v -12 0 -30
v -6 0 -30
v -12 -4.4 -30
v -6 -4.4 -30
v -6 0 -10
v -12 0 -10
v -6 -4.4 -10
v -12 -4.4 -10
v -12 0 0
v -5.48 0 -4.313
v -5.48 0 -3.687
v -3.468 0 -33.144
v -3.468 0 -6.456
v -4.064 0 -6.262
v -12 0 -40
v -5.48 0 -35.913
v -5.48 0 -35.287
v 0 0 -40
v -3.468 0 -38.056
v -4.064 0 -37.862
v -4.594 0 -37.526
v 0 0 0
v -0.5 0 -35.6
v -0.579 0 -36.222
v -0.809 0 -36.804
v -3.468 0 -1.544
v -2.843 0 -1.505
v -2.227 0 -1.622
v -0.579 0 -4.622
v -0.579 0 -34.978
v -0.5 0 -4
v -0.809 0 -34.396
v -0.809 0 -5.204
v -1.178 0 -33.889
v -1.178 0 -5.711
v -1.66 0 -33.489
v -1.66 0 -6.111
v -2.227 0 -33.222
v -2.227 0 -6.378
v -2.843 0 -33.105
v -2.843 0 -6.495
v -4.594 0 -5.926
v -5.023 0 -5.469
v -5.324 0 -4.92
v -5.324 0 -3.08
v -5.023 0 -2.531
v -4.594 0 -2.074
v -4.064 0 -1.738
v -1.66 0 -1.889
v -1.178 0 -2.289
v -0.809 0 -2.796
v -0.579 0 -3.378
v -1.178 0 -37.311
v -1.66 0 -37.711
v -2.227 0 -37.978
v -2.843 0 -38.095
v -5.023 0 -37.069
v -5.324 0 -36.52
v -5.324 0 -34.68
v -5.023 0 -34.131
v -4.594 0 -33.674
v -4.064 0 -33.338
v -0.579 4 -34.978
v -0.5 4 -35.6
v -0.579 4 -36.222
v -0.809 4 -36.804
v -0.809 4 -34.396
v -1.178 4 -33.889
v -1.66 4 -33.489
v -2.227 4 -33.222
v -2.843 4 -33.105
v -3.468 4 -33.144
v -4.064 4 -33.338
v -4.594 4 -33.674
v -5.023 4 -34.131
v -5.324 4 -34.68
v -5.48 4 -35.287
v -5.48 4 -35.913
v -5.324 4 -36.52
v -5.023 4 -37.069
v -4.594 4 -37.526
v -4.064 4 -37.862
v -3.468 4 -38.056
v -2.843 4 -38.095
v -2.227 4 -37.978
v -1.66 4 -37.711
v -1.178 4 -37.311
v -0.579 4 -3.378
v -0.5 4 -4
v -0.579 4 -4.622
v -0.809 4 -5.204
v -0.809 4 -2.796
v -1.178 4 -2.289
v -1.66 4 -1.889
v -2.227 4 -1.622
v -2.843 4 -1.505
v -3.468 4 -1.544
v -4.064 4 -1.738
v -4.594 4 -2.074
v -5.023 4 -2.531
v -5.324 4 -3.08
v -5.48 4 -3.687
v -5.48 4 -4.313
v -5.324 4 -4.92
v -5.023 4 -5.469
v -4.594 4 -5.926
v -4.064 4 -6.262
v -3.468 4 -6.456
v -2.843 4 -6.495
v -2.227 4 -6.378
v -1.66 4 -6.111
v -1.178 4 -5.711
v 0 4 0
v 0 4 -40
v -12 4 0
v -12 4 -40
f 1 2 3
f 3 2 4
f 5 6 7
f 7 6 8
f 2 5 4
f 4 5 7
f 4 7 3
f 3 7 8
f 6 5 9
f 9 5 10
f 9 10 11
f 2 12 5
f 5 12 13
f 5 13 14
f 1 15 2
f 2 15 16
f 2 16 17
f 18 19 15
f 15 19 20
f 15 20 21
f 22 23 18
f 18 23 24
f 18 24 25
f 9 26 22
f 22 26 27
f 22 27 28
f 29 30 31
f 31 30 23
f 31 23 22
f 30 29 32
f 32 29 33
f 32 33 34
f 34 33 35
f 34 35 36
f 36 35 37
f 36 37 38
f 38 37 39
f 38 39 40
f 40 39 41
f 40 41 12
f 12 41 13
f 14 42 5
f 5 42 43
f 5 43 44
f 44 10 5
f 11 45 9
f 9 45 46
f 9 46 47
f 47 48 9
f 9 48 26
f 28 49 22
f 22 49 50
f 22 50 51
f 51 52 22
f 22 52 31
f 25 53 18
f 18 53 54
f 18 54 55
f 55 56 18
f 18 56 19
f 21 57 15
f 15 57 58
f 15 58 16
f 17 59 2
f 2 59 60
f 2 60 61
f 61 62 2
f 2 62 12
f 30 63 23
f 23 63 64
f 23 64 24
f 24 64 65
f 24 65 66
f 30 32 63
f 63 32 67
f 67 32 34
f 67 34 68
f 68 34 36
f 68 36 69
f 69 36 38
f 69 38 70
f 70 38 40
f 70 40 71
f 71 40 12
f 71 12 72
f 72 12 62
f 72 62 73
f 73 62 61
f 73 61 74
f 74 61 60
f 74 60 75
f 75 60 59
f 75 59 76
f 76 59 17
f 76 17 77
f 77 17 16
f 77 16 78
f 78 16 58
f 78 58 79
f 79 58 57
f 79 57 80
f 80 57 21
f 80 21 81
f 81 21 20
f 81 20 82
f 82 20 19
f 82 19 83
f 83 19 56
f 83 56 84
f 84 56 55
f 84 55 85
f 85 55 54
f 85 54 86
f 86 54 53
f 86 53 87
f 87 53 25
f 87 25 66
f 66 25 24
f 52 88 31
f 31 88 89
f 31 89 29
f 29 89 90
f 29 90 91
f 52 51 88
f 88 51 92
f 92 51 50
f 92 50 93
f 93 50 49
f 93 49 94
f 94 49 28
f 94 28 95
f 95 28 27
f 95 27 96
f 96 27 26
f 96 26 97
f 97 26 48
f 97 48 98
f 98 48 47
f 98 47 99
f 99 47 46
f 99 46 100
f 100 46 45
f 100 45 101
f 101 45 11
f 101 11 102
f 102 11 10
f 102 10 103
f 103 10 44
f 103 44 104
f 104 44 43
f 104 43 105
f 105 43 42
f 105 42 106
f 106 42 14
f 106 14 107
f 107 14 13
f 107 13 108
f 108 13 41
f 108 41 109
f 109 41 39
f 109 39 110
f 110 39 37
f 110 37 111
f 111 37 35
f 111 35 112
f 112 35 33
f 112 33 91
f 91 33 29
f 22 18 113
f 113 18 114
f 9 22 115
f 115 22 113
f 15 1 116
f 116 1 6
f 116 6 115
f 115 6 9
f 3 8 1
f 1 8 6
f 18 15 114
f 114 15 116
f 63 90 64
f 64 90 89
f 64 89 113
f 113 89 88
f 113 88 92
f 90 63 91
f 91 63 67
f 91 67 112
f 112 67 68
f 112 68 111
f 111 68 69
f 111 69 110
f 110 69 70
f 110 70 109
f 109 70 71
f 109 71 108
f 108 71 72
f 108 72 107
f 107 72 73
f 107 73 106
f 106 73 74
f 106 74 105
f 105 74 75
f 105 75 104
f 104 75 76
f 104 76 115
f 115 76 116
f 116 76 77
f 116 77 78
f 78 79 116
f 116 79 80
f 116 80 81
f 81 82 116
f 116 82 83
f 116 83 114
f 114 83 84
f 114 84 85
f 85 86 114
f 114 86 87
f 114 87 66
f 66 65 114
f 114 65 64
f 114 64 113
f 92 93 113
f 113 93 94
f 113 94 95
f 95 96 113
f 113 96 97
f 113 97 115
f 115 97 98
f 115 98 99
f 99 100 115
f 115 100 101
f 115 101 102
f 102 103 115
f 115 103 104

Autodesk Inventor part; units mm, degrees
ref_plane "YZ Plane" through (0, 0, 0) normal (1, 0, 0) x (0, 1, 0)
ref_plane "XZ Plane" through (0, 0, 0) normal (0, 1, 0) x (-1, 0, 0)
ref_plane "XY Plane" through (0, 0, 0) normal (0, 0, 1) x (1, 0, 0)
sketch "Sketch1" plane through (0, 0, 0) normal (0, 1, 0) x (-1, 0, 0)
  line L0 (0, 0) -> (12, 0)
  line L1 (12, 0) -> (12, -40)
  line L2 (12, -40) -> (0, -40)
  line L3 (0, -40) -> (0, 0)
  dimension "d0" = 40
  dimension "d1" = 12
extrude "Extrusion1" add sketch "Sketch1" along normal blind 4
sketch "Sketch2" plane through (0, 4, 0) normal (0, 1, 0) x (1, 0, 0)
  circle A0 centre (-3, 4) radius 2.5
  circle A1 centre (-3, 35.6) radius 2.5
  line L0 (-12, 0) -> (0, 0) projected
  line L1 (0, 0) -> (0, 40) projected
  dimension "d4" = 5
  dimension "d5" = 5
  dimension "d6" = 4
  dimension "d7" = 3
  dimension "d8" = 31.6
  dimension "d9" = 3
extrude "Extrusion2" cut sketch "Sketch2" against normal blind 4
sketch "Sketch3" plane through (0, 0, 0) normal (0, -1, 0) x (1, 0, 0)
  line L0 (-12, -30) -> (-6, -30)
  line L1 (-6, -30) -> (-6, -10)
  line L2 (-6, -10) -> (-12, -10)
  line L3 (-12, -10) -> (-12, -30)
  line L4 (0, -40) -> (-12, -40) projected
  line L5 (-12, 0) -> (0, 0) projected
  line L6 (-12, -40) -> (-12, 0) projected
  dimension "d12" = 6
  dimension "d15" = 10
  dimension "d16" = 10
  dimension "d17" = 0
extrude "Extrusion3" add sketch "Sketch3" along normal blind 4.4
equation "\"d5\" = d4"
equation "\"d9\" = d7"
properties part number "B1 fermeture"
